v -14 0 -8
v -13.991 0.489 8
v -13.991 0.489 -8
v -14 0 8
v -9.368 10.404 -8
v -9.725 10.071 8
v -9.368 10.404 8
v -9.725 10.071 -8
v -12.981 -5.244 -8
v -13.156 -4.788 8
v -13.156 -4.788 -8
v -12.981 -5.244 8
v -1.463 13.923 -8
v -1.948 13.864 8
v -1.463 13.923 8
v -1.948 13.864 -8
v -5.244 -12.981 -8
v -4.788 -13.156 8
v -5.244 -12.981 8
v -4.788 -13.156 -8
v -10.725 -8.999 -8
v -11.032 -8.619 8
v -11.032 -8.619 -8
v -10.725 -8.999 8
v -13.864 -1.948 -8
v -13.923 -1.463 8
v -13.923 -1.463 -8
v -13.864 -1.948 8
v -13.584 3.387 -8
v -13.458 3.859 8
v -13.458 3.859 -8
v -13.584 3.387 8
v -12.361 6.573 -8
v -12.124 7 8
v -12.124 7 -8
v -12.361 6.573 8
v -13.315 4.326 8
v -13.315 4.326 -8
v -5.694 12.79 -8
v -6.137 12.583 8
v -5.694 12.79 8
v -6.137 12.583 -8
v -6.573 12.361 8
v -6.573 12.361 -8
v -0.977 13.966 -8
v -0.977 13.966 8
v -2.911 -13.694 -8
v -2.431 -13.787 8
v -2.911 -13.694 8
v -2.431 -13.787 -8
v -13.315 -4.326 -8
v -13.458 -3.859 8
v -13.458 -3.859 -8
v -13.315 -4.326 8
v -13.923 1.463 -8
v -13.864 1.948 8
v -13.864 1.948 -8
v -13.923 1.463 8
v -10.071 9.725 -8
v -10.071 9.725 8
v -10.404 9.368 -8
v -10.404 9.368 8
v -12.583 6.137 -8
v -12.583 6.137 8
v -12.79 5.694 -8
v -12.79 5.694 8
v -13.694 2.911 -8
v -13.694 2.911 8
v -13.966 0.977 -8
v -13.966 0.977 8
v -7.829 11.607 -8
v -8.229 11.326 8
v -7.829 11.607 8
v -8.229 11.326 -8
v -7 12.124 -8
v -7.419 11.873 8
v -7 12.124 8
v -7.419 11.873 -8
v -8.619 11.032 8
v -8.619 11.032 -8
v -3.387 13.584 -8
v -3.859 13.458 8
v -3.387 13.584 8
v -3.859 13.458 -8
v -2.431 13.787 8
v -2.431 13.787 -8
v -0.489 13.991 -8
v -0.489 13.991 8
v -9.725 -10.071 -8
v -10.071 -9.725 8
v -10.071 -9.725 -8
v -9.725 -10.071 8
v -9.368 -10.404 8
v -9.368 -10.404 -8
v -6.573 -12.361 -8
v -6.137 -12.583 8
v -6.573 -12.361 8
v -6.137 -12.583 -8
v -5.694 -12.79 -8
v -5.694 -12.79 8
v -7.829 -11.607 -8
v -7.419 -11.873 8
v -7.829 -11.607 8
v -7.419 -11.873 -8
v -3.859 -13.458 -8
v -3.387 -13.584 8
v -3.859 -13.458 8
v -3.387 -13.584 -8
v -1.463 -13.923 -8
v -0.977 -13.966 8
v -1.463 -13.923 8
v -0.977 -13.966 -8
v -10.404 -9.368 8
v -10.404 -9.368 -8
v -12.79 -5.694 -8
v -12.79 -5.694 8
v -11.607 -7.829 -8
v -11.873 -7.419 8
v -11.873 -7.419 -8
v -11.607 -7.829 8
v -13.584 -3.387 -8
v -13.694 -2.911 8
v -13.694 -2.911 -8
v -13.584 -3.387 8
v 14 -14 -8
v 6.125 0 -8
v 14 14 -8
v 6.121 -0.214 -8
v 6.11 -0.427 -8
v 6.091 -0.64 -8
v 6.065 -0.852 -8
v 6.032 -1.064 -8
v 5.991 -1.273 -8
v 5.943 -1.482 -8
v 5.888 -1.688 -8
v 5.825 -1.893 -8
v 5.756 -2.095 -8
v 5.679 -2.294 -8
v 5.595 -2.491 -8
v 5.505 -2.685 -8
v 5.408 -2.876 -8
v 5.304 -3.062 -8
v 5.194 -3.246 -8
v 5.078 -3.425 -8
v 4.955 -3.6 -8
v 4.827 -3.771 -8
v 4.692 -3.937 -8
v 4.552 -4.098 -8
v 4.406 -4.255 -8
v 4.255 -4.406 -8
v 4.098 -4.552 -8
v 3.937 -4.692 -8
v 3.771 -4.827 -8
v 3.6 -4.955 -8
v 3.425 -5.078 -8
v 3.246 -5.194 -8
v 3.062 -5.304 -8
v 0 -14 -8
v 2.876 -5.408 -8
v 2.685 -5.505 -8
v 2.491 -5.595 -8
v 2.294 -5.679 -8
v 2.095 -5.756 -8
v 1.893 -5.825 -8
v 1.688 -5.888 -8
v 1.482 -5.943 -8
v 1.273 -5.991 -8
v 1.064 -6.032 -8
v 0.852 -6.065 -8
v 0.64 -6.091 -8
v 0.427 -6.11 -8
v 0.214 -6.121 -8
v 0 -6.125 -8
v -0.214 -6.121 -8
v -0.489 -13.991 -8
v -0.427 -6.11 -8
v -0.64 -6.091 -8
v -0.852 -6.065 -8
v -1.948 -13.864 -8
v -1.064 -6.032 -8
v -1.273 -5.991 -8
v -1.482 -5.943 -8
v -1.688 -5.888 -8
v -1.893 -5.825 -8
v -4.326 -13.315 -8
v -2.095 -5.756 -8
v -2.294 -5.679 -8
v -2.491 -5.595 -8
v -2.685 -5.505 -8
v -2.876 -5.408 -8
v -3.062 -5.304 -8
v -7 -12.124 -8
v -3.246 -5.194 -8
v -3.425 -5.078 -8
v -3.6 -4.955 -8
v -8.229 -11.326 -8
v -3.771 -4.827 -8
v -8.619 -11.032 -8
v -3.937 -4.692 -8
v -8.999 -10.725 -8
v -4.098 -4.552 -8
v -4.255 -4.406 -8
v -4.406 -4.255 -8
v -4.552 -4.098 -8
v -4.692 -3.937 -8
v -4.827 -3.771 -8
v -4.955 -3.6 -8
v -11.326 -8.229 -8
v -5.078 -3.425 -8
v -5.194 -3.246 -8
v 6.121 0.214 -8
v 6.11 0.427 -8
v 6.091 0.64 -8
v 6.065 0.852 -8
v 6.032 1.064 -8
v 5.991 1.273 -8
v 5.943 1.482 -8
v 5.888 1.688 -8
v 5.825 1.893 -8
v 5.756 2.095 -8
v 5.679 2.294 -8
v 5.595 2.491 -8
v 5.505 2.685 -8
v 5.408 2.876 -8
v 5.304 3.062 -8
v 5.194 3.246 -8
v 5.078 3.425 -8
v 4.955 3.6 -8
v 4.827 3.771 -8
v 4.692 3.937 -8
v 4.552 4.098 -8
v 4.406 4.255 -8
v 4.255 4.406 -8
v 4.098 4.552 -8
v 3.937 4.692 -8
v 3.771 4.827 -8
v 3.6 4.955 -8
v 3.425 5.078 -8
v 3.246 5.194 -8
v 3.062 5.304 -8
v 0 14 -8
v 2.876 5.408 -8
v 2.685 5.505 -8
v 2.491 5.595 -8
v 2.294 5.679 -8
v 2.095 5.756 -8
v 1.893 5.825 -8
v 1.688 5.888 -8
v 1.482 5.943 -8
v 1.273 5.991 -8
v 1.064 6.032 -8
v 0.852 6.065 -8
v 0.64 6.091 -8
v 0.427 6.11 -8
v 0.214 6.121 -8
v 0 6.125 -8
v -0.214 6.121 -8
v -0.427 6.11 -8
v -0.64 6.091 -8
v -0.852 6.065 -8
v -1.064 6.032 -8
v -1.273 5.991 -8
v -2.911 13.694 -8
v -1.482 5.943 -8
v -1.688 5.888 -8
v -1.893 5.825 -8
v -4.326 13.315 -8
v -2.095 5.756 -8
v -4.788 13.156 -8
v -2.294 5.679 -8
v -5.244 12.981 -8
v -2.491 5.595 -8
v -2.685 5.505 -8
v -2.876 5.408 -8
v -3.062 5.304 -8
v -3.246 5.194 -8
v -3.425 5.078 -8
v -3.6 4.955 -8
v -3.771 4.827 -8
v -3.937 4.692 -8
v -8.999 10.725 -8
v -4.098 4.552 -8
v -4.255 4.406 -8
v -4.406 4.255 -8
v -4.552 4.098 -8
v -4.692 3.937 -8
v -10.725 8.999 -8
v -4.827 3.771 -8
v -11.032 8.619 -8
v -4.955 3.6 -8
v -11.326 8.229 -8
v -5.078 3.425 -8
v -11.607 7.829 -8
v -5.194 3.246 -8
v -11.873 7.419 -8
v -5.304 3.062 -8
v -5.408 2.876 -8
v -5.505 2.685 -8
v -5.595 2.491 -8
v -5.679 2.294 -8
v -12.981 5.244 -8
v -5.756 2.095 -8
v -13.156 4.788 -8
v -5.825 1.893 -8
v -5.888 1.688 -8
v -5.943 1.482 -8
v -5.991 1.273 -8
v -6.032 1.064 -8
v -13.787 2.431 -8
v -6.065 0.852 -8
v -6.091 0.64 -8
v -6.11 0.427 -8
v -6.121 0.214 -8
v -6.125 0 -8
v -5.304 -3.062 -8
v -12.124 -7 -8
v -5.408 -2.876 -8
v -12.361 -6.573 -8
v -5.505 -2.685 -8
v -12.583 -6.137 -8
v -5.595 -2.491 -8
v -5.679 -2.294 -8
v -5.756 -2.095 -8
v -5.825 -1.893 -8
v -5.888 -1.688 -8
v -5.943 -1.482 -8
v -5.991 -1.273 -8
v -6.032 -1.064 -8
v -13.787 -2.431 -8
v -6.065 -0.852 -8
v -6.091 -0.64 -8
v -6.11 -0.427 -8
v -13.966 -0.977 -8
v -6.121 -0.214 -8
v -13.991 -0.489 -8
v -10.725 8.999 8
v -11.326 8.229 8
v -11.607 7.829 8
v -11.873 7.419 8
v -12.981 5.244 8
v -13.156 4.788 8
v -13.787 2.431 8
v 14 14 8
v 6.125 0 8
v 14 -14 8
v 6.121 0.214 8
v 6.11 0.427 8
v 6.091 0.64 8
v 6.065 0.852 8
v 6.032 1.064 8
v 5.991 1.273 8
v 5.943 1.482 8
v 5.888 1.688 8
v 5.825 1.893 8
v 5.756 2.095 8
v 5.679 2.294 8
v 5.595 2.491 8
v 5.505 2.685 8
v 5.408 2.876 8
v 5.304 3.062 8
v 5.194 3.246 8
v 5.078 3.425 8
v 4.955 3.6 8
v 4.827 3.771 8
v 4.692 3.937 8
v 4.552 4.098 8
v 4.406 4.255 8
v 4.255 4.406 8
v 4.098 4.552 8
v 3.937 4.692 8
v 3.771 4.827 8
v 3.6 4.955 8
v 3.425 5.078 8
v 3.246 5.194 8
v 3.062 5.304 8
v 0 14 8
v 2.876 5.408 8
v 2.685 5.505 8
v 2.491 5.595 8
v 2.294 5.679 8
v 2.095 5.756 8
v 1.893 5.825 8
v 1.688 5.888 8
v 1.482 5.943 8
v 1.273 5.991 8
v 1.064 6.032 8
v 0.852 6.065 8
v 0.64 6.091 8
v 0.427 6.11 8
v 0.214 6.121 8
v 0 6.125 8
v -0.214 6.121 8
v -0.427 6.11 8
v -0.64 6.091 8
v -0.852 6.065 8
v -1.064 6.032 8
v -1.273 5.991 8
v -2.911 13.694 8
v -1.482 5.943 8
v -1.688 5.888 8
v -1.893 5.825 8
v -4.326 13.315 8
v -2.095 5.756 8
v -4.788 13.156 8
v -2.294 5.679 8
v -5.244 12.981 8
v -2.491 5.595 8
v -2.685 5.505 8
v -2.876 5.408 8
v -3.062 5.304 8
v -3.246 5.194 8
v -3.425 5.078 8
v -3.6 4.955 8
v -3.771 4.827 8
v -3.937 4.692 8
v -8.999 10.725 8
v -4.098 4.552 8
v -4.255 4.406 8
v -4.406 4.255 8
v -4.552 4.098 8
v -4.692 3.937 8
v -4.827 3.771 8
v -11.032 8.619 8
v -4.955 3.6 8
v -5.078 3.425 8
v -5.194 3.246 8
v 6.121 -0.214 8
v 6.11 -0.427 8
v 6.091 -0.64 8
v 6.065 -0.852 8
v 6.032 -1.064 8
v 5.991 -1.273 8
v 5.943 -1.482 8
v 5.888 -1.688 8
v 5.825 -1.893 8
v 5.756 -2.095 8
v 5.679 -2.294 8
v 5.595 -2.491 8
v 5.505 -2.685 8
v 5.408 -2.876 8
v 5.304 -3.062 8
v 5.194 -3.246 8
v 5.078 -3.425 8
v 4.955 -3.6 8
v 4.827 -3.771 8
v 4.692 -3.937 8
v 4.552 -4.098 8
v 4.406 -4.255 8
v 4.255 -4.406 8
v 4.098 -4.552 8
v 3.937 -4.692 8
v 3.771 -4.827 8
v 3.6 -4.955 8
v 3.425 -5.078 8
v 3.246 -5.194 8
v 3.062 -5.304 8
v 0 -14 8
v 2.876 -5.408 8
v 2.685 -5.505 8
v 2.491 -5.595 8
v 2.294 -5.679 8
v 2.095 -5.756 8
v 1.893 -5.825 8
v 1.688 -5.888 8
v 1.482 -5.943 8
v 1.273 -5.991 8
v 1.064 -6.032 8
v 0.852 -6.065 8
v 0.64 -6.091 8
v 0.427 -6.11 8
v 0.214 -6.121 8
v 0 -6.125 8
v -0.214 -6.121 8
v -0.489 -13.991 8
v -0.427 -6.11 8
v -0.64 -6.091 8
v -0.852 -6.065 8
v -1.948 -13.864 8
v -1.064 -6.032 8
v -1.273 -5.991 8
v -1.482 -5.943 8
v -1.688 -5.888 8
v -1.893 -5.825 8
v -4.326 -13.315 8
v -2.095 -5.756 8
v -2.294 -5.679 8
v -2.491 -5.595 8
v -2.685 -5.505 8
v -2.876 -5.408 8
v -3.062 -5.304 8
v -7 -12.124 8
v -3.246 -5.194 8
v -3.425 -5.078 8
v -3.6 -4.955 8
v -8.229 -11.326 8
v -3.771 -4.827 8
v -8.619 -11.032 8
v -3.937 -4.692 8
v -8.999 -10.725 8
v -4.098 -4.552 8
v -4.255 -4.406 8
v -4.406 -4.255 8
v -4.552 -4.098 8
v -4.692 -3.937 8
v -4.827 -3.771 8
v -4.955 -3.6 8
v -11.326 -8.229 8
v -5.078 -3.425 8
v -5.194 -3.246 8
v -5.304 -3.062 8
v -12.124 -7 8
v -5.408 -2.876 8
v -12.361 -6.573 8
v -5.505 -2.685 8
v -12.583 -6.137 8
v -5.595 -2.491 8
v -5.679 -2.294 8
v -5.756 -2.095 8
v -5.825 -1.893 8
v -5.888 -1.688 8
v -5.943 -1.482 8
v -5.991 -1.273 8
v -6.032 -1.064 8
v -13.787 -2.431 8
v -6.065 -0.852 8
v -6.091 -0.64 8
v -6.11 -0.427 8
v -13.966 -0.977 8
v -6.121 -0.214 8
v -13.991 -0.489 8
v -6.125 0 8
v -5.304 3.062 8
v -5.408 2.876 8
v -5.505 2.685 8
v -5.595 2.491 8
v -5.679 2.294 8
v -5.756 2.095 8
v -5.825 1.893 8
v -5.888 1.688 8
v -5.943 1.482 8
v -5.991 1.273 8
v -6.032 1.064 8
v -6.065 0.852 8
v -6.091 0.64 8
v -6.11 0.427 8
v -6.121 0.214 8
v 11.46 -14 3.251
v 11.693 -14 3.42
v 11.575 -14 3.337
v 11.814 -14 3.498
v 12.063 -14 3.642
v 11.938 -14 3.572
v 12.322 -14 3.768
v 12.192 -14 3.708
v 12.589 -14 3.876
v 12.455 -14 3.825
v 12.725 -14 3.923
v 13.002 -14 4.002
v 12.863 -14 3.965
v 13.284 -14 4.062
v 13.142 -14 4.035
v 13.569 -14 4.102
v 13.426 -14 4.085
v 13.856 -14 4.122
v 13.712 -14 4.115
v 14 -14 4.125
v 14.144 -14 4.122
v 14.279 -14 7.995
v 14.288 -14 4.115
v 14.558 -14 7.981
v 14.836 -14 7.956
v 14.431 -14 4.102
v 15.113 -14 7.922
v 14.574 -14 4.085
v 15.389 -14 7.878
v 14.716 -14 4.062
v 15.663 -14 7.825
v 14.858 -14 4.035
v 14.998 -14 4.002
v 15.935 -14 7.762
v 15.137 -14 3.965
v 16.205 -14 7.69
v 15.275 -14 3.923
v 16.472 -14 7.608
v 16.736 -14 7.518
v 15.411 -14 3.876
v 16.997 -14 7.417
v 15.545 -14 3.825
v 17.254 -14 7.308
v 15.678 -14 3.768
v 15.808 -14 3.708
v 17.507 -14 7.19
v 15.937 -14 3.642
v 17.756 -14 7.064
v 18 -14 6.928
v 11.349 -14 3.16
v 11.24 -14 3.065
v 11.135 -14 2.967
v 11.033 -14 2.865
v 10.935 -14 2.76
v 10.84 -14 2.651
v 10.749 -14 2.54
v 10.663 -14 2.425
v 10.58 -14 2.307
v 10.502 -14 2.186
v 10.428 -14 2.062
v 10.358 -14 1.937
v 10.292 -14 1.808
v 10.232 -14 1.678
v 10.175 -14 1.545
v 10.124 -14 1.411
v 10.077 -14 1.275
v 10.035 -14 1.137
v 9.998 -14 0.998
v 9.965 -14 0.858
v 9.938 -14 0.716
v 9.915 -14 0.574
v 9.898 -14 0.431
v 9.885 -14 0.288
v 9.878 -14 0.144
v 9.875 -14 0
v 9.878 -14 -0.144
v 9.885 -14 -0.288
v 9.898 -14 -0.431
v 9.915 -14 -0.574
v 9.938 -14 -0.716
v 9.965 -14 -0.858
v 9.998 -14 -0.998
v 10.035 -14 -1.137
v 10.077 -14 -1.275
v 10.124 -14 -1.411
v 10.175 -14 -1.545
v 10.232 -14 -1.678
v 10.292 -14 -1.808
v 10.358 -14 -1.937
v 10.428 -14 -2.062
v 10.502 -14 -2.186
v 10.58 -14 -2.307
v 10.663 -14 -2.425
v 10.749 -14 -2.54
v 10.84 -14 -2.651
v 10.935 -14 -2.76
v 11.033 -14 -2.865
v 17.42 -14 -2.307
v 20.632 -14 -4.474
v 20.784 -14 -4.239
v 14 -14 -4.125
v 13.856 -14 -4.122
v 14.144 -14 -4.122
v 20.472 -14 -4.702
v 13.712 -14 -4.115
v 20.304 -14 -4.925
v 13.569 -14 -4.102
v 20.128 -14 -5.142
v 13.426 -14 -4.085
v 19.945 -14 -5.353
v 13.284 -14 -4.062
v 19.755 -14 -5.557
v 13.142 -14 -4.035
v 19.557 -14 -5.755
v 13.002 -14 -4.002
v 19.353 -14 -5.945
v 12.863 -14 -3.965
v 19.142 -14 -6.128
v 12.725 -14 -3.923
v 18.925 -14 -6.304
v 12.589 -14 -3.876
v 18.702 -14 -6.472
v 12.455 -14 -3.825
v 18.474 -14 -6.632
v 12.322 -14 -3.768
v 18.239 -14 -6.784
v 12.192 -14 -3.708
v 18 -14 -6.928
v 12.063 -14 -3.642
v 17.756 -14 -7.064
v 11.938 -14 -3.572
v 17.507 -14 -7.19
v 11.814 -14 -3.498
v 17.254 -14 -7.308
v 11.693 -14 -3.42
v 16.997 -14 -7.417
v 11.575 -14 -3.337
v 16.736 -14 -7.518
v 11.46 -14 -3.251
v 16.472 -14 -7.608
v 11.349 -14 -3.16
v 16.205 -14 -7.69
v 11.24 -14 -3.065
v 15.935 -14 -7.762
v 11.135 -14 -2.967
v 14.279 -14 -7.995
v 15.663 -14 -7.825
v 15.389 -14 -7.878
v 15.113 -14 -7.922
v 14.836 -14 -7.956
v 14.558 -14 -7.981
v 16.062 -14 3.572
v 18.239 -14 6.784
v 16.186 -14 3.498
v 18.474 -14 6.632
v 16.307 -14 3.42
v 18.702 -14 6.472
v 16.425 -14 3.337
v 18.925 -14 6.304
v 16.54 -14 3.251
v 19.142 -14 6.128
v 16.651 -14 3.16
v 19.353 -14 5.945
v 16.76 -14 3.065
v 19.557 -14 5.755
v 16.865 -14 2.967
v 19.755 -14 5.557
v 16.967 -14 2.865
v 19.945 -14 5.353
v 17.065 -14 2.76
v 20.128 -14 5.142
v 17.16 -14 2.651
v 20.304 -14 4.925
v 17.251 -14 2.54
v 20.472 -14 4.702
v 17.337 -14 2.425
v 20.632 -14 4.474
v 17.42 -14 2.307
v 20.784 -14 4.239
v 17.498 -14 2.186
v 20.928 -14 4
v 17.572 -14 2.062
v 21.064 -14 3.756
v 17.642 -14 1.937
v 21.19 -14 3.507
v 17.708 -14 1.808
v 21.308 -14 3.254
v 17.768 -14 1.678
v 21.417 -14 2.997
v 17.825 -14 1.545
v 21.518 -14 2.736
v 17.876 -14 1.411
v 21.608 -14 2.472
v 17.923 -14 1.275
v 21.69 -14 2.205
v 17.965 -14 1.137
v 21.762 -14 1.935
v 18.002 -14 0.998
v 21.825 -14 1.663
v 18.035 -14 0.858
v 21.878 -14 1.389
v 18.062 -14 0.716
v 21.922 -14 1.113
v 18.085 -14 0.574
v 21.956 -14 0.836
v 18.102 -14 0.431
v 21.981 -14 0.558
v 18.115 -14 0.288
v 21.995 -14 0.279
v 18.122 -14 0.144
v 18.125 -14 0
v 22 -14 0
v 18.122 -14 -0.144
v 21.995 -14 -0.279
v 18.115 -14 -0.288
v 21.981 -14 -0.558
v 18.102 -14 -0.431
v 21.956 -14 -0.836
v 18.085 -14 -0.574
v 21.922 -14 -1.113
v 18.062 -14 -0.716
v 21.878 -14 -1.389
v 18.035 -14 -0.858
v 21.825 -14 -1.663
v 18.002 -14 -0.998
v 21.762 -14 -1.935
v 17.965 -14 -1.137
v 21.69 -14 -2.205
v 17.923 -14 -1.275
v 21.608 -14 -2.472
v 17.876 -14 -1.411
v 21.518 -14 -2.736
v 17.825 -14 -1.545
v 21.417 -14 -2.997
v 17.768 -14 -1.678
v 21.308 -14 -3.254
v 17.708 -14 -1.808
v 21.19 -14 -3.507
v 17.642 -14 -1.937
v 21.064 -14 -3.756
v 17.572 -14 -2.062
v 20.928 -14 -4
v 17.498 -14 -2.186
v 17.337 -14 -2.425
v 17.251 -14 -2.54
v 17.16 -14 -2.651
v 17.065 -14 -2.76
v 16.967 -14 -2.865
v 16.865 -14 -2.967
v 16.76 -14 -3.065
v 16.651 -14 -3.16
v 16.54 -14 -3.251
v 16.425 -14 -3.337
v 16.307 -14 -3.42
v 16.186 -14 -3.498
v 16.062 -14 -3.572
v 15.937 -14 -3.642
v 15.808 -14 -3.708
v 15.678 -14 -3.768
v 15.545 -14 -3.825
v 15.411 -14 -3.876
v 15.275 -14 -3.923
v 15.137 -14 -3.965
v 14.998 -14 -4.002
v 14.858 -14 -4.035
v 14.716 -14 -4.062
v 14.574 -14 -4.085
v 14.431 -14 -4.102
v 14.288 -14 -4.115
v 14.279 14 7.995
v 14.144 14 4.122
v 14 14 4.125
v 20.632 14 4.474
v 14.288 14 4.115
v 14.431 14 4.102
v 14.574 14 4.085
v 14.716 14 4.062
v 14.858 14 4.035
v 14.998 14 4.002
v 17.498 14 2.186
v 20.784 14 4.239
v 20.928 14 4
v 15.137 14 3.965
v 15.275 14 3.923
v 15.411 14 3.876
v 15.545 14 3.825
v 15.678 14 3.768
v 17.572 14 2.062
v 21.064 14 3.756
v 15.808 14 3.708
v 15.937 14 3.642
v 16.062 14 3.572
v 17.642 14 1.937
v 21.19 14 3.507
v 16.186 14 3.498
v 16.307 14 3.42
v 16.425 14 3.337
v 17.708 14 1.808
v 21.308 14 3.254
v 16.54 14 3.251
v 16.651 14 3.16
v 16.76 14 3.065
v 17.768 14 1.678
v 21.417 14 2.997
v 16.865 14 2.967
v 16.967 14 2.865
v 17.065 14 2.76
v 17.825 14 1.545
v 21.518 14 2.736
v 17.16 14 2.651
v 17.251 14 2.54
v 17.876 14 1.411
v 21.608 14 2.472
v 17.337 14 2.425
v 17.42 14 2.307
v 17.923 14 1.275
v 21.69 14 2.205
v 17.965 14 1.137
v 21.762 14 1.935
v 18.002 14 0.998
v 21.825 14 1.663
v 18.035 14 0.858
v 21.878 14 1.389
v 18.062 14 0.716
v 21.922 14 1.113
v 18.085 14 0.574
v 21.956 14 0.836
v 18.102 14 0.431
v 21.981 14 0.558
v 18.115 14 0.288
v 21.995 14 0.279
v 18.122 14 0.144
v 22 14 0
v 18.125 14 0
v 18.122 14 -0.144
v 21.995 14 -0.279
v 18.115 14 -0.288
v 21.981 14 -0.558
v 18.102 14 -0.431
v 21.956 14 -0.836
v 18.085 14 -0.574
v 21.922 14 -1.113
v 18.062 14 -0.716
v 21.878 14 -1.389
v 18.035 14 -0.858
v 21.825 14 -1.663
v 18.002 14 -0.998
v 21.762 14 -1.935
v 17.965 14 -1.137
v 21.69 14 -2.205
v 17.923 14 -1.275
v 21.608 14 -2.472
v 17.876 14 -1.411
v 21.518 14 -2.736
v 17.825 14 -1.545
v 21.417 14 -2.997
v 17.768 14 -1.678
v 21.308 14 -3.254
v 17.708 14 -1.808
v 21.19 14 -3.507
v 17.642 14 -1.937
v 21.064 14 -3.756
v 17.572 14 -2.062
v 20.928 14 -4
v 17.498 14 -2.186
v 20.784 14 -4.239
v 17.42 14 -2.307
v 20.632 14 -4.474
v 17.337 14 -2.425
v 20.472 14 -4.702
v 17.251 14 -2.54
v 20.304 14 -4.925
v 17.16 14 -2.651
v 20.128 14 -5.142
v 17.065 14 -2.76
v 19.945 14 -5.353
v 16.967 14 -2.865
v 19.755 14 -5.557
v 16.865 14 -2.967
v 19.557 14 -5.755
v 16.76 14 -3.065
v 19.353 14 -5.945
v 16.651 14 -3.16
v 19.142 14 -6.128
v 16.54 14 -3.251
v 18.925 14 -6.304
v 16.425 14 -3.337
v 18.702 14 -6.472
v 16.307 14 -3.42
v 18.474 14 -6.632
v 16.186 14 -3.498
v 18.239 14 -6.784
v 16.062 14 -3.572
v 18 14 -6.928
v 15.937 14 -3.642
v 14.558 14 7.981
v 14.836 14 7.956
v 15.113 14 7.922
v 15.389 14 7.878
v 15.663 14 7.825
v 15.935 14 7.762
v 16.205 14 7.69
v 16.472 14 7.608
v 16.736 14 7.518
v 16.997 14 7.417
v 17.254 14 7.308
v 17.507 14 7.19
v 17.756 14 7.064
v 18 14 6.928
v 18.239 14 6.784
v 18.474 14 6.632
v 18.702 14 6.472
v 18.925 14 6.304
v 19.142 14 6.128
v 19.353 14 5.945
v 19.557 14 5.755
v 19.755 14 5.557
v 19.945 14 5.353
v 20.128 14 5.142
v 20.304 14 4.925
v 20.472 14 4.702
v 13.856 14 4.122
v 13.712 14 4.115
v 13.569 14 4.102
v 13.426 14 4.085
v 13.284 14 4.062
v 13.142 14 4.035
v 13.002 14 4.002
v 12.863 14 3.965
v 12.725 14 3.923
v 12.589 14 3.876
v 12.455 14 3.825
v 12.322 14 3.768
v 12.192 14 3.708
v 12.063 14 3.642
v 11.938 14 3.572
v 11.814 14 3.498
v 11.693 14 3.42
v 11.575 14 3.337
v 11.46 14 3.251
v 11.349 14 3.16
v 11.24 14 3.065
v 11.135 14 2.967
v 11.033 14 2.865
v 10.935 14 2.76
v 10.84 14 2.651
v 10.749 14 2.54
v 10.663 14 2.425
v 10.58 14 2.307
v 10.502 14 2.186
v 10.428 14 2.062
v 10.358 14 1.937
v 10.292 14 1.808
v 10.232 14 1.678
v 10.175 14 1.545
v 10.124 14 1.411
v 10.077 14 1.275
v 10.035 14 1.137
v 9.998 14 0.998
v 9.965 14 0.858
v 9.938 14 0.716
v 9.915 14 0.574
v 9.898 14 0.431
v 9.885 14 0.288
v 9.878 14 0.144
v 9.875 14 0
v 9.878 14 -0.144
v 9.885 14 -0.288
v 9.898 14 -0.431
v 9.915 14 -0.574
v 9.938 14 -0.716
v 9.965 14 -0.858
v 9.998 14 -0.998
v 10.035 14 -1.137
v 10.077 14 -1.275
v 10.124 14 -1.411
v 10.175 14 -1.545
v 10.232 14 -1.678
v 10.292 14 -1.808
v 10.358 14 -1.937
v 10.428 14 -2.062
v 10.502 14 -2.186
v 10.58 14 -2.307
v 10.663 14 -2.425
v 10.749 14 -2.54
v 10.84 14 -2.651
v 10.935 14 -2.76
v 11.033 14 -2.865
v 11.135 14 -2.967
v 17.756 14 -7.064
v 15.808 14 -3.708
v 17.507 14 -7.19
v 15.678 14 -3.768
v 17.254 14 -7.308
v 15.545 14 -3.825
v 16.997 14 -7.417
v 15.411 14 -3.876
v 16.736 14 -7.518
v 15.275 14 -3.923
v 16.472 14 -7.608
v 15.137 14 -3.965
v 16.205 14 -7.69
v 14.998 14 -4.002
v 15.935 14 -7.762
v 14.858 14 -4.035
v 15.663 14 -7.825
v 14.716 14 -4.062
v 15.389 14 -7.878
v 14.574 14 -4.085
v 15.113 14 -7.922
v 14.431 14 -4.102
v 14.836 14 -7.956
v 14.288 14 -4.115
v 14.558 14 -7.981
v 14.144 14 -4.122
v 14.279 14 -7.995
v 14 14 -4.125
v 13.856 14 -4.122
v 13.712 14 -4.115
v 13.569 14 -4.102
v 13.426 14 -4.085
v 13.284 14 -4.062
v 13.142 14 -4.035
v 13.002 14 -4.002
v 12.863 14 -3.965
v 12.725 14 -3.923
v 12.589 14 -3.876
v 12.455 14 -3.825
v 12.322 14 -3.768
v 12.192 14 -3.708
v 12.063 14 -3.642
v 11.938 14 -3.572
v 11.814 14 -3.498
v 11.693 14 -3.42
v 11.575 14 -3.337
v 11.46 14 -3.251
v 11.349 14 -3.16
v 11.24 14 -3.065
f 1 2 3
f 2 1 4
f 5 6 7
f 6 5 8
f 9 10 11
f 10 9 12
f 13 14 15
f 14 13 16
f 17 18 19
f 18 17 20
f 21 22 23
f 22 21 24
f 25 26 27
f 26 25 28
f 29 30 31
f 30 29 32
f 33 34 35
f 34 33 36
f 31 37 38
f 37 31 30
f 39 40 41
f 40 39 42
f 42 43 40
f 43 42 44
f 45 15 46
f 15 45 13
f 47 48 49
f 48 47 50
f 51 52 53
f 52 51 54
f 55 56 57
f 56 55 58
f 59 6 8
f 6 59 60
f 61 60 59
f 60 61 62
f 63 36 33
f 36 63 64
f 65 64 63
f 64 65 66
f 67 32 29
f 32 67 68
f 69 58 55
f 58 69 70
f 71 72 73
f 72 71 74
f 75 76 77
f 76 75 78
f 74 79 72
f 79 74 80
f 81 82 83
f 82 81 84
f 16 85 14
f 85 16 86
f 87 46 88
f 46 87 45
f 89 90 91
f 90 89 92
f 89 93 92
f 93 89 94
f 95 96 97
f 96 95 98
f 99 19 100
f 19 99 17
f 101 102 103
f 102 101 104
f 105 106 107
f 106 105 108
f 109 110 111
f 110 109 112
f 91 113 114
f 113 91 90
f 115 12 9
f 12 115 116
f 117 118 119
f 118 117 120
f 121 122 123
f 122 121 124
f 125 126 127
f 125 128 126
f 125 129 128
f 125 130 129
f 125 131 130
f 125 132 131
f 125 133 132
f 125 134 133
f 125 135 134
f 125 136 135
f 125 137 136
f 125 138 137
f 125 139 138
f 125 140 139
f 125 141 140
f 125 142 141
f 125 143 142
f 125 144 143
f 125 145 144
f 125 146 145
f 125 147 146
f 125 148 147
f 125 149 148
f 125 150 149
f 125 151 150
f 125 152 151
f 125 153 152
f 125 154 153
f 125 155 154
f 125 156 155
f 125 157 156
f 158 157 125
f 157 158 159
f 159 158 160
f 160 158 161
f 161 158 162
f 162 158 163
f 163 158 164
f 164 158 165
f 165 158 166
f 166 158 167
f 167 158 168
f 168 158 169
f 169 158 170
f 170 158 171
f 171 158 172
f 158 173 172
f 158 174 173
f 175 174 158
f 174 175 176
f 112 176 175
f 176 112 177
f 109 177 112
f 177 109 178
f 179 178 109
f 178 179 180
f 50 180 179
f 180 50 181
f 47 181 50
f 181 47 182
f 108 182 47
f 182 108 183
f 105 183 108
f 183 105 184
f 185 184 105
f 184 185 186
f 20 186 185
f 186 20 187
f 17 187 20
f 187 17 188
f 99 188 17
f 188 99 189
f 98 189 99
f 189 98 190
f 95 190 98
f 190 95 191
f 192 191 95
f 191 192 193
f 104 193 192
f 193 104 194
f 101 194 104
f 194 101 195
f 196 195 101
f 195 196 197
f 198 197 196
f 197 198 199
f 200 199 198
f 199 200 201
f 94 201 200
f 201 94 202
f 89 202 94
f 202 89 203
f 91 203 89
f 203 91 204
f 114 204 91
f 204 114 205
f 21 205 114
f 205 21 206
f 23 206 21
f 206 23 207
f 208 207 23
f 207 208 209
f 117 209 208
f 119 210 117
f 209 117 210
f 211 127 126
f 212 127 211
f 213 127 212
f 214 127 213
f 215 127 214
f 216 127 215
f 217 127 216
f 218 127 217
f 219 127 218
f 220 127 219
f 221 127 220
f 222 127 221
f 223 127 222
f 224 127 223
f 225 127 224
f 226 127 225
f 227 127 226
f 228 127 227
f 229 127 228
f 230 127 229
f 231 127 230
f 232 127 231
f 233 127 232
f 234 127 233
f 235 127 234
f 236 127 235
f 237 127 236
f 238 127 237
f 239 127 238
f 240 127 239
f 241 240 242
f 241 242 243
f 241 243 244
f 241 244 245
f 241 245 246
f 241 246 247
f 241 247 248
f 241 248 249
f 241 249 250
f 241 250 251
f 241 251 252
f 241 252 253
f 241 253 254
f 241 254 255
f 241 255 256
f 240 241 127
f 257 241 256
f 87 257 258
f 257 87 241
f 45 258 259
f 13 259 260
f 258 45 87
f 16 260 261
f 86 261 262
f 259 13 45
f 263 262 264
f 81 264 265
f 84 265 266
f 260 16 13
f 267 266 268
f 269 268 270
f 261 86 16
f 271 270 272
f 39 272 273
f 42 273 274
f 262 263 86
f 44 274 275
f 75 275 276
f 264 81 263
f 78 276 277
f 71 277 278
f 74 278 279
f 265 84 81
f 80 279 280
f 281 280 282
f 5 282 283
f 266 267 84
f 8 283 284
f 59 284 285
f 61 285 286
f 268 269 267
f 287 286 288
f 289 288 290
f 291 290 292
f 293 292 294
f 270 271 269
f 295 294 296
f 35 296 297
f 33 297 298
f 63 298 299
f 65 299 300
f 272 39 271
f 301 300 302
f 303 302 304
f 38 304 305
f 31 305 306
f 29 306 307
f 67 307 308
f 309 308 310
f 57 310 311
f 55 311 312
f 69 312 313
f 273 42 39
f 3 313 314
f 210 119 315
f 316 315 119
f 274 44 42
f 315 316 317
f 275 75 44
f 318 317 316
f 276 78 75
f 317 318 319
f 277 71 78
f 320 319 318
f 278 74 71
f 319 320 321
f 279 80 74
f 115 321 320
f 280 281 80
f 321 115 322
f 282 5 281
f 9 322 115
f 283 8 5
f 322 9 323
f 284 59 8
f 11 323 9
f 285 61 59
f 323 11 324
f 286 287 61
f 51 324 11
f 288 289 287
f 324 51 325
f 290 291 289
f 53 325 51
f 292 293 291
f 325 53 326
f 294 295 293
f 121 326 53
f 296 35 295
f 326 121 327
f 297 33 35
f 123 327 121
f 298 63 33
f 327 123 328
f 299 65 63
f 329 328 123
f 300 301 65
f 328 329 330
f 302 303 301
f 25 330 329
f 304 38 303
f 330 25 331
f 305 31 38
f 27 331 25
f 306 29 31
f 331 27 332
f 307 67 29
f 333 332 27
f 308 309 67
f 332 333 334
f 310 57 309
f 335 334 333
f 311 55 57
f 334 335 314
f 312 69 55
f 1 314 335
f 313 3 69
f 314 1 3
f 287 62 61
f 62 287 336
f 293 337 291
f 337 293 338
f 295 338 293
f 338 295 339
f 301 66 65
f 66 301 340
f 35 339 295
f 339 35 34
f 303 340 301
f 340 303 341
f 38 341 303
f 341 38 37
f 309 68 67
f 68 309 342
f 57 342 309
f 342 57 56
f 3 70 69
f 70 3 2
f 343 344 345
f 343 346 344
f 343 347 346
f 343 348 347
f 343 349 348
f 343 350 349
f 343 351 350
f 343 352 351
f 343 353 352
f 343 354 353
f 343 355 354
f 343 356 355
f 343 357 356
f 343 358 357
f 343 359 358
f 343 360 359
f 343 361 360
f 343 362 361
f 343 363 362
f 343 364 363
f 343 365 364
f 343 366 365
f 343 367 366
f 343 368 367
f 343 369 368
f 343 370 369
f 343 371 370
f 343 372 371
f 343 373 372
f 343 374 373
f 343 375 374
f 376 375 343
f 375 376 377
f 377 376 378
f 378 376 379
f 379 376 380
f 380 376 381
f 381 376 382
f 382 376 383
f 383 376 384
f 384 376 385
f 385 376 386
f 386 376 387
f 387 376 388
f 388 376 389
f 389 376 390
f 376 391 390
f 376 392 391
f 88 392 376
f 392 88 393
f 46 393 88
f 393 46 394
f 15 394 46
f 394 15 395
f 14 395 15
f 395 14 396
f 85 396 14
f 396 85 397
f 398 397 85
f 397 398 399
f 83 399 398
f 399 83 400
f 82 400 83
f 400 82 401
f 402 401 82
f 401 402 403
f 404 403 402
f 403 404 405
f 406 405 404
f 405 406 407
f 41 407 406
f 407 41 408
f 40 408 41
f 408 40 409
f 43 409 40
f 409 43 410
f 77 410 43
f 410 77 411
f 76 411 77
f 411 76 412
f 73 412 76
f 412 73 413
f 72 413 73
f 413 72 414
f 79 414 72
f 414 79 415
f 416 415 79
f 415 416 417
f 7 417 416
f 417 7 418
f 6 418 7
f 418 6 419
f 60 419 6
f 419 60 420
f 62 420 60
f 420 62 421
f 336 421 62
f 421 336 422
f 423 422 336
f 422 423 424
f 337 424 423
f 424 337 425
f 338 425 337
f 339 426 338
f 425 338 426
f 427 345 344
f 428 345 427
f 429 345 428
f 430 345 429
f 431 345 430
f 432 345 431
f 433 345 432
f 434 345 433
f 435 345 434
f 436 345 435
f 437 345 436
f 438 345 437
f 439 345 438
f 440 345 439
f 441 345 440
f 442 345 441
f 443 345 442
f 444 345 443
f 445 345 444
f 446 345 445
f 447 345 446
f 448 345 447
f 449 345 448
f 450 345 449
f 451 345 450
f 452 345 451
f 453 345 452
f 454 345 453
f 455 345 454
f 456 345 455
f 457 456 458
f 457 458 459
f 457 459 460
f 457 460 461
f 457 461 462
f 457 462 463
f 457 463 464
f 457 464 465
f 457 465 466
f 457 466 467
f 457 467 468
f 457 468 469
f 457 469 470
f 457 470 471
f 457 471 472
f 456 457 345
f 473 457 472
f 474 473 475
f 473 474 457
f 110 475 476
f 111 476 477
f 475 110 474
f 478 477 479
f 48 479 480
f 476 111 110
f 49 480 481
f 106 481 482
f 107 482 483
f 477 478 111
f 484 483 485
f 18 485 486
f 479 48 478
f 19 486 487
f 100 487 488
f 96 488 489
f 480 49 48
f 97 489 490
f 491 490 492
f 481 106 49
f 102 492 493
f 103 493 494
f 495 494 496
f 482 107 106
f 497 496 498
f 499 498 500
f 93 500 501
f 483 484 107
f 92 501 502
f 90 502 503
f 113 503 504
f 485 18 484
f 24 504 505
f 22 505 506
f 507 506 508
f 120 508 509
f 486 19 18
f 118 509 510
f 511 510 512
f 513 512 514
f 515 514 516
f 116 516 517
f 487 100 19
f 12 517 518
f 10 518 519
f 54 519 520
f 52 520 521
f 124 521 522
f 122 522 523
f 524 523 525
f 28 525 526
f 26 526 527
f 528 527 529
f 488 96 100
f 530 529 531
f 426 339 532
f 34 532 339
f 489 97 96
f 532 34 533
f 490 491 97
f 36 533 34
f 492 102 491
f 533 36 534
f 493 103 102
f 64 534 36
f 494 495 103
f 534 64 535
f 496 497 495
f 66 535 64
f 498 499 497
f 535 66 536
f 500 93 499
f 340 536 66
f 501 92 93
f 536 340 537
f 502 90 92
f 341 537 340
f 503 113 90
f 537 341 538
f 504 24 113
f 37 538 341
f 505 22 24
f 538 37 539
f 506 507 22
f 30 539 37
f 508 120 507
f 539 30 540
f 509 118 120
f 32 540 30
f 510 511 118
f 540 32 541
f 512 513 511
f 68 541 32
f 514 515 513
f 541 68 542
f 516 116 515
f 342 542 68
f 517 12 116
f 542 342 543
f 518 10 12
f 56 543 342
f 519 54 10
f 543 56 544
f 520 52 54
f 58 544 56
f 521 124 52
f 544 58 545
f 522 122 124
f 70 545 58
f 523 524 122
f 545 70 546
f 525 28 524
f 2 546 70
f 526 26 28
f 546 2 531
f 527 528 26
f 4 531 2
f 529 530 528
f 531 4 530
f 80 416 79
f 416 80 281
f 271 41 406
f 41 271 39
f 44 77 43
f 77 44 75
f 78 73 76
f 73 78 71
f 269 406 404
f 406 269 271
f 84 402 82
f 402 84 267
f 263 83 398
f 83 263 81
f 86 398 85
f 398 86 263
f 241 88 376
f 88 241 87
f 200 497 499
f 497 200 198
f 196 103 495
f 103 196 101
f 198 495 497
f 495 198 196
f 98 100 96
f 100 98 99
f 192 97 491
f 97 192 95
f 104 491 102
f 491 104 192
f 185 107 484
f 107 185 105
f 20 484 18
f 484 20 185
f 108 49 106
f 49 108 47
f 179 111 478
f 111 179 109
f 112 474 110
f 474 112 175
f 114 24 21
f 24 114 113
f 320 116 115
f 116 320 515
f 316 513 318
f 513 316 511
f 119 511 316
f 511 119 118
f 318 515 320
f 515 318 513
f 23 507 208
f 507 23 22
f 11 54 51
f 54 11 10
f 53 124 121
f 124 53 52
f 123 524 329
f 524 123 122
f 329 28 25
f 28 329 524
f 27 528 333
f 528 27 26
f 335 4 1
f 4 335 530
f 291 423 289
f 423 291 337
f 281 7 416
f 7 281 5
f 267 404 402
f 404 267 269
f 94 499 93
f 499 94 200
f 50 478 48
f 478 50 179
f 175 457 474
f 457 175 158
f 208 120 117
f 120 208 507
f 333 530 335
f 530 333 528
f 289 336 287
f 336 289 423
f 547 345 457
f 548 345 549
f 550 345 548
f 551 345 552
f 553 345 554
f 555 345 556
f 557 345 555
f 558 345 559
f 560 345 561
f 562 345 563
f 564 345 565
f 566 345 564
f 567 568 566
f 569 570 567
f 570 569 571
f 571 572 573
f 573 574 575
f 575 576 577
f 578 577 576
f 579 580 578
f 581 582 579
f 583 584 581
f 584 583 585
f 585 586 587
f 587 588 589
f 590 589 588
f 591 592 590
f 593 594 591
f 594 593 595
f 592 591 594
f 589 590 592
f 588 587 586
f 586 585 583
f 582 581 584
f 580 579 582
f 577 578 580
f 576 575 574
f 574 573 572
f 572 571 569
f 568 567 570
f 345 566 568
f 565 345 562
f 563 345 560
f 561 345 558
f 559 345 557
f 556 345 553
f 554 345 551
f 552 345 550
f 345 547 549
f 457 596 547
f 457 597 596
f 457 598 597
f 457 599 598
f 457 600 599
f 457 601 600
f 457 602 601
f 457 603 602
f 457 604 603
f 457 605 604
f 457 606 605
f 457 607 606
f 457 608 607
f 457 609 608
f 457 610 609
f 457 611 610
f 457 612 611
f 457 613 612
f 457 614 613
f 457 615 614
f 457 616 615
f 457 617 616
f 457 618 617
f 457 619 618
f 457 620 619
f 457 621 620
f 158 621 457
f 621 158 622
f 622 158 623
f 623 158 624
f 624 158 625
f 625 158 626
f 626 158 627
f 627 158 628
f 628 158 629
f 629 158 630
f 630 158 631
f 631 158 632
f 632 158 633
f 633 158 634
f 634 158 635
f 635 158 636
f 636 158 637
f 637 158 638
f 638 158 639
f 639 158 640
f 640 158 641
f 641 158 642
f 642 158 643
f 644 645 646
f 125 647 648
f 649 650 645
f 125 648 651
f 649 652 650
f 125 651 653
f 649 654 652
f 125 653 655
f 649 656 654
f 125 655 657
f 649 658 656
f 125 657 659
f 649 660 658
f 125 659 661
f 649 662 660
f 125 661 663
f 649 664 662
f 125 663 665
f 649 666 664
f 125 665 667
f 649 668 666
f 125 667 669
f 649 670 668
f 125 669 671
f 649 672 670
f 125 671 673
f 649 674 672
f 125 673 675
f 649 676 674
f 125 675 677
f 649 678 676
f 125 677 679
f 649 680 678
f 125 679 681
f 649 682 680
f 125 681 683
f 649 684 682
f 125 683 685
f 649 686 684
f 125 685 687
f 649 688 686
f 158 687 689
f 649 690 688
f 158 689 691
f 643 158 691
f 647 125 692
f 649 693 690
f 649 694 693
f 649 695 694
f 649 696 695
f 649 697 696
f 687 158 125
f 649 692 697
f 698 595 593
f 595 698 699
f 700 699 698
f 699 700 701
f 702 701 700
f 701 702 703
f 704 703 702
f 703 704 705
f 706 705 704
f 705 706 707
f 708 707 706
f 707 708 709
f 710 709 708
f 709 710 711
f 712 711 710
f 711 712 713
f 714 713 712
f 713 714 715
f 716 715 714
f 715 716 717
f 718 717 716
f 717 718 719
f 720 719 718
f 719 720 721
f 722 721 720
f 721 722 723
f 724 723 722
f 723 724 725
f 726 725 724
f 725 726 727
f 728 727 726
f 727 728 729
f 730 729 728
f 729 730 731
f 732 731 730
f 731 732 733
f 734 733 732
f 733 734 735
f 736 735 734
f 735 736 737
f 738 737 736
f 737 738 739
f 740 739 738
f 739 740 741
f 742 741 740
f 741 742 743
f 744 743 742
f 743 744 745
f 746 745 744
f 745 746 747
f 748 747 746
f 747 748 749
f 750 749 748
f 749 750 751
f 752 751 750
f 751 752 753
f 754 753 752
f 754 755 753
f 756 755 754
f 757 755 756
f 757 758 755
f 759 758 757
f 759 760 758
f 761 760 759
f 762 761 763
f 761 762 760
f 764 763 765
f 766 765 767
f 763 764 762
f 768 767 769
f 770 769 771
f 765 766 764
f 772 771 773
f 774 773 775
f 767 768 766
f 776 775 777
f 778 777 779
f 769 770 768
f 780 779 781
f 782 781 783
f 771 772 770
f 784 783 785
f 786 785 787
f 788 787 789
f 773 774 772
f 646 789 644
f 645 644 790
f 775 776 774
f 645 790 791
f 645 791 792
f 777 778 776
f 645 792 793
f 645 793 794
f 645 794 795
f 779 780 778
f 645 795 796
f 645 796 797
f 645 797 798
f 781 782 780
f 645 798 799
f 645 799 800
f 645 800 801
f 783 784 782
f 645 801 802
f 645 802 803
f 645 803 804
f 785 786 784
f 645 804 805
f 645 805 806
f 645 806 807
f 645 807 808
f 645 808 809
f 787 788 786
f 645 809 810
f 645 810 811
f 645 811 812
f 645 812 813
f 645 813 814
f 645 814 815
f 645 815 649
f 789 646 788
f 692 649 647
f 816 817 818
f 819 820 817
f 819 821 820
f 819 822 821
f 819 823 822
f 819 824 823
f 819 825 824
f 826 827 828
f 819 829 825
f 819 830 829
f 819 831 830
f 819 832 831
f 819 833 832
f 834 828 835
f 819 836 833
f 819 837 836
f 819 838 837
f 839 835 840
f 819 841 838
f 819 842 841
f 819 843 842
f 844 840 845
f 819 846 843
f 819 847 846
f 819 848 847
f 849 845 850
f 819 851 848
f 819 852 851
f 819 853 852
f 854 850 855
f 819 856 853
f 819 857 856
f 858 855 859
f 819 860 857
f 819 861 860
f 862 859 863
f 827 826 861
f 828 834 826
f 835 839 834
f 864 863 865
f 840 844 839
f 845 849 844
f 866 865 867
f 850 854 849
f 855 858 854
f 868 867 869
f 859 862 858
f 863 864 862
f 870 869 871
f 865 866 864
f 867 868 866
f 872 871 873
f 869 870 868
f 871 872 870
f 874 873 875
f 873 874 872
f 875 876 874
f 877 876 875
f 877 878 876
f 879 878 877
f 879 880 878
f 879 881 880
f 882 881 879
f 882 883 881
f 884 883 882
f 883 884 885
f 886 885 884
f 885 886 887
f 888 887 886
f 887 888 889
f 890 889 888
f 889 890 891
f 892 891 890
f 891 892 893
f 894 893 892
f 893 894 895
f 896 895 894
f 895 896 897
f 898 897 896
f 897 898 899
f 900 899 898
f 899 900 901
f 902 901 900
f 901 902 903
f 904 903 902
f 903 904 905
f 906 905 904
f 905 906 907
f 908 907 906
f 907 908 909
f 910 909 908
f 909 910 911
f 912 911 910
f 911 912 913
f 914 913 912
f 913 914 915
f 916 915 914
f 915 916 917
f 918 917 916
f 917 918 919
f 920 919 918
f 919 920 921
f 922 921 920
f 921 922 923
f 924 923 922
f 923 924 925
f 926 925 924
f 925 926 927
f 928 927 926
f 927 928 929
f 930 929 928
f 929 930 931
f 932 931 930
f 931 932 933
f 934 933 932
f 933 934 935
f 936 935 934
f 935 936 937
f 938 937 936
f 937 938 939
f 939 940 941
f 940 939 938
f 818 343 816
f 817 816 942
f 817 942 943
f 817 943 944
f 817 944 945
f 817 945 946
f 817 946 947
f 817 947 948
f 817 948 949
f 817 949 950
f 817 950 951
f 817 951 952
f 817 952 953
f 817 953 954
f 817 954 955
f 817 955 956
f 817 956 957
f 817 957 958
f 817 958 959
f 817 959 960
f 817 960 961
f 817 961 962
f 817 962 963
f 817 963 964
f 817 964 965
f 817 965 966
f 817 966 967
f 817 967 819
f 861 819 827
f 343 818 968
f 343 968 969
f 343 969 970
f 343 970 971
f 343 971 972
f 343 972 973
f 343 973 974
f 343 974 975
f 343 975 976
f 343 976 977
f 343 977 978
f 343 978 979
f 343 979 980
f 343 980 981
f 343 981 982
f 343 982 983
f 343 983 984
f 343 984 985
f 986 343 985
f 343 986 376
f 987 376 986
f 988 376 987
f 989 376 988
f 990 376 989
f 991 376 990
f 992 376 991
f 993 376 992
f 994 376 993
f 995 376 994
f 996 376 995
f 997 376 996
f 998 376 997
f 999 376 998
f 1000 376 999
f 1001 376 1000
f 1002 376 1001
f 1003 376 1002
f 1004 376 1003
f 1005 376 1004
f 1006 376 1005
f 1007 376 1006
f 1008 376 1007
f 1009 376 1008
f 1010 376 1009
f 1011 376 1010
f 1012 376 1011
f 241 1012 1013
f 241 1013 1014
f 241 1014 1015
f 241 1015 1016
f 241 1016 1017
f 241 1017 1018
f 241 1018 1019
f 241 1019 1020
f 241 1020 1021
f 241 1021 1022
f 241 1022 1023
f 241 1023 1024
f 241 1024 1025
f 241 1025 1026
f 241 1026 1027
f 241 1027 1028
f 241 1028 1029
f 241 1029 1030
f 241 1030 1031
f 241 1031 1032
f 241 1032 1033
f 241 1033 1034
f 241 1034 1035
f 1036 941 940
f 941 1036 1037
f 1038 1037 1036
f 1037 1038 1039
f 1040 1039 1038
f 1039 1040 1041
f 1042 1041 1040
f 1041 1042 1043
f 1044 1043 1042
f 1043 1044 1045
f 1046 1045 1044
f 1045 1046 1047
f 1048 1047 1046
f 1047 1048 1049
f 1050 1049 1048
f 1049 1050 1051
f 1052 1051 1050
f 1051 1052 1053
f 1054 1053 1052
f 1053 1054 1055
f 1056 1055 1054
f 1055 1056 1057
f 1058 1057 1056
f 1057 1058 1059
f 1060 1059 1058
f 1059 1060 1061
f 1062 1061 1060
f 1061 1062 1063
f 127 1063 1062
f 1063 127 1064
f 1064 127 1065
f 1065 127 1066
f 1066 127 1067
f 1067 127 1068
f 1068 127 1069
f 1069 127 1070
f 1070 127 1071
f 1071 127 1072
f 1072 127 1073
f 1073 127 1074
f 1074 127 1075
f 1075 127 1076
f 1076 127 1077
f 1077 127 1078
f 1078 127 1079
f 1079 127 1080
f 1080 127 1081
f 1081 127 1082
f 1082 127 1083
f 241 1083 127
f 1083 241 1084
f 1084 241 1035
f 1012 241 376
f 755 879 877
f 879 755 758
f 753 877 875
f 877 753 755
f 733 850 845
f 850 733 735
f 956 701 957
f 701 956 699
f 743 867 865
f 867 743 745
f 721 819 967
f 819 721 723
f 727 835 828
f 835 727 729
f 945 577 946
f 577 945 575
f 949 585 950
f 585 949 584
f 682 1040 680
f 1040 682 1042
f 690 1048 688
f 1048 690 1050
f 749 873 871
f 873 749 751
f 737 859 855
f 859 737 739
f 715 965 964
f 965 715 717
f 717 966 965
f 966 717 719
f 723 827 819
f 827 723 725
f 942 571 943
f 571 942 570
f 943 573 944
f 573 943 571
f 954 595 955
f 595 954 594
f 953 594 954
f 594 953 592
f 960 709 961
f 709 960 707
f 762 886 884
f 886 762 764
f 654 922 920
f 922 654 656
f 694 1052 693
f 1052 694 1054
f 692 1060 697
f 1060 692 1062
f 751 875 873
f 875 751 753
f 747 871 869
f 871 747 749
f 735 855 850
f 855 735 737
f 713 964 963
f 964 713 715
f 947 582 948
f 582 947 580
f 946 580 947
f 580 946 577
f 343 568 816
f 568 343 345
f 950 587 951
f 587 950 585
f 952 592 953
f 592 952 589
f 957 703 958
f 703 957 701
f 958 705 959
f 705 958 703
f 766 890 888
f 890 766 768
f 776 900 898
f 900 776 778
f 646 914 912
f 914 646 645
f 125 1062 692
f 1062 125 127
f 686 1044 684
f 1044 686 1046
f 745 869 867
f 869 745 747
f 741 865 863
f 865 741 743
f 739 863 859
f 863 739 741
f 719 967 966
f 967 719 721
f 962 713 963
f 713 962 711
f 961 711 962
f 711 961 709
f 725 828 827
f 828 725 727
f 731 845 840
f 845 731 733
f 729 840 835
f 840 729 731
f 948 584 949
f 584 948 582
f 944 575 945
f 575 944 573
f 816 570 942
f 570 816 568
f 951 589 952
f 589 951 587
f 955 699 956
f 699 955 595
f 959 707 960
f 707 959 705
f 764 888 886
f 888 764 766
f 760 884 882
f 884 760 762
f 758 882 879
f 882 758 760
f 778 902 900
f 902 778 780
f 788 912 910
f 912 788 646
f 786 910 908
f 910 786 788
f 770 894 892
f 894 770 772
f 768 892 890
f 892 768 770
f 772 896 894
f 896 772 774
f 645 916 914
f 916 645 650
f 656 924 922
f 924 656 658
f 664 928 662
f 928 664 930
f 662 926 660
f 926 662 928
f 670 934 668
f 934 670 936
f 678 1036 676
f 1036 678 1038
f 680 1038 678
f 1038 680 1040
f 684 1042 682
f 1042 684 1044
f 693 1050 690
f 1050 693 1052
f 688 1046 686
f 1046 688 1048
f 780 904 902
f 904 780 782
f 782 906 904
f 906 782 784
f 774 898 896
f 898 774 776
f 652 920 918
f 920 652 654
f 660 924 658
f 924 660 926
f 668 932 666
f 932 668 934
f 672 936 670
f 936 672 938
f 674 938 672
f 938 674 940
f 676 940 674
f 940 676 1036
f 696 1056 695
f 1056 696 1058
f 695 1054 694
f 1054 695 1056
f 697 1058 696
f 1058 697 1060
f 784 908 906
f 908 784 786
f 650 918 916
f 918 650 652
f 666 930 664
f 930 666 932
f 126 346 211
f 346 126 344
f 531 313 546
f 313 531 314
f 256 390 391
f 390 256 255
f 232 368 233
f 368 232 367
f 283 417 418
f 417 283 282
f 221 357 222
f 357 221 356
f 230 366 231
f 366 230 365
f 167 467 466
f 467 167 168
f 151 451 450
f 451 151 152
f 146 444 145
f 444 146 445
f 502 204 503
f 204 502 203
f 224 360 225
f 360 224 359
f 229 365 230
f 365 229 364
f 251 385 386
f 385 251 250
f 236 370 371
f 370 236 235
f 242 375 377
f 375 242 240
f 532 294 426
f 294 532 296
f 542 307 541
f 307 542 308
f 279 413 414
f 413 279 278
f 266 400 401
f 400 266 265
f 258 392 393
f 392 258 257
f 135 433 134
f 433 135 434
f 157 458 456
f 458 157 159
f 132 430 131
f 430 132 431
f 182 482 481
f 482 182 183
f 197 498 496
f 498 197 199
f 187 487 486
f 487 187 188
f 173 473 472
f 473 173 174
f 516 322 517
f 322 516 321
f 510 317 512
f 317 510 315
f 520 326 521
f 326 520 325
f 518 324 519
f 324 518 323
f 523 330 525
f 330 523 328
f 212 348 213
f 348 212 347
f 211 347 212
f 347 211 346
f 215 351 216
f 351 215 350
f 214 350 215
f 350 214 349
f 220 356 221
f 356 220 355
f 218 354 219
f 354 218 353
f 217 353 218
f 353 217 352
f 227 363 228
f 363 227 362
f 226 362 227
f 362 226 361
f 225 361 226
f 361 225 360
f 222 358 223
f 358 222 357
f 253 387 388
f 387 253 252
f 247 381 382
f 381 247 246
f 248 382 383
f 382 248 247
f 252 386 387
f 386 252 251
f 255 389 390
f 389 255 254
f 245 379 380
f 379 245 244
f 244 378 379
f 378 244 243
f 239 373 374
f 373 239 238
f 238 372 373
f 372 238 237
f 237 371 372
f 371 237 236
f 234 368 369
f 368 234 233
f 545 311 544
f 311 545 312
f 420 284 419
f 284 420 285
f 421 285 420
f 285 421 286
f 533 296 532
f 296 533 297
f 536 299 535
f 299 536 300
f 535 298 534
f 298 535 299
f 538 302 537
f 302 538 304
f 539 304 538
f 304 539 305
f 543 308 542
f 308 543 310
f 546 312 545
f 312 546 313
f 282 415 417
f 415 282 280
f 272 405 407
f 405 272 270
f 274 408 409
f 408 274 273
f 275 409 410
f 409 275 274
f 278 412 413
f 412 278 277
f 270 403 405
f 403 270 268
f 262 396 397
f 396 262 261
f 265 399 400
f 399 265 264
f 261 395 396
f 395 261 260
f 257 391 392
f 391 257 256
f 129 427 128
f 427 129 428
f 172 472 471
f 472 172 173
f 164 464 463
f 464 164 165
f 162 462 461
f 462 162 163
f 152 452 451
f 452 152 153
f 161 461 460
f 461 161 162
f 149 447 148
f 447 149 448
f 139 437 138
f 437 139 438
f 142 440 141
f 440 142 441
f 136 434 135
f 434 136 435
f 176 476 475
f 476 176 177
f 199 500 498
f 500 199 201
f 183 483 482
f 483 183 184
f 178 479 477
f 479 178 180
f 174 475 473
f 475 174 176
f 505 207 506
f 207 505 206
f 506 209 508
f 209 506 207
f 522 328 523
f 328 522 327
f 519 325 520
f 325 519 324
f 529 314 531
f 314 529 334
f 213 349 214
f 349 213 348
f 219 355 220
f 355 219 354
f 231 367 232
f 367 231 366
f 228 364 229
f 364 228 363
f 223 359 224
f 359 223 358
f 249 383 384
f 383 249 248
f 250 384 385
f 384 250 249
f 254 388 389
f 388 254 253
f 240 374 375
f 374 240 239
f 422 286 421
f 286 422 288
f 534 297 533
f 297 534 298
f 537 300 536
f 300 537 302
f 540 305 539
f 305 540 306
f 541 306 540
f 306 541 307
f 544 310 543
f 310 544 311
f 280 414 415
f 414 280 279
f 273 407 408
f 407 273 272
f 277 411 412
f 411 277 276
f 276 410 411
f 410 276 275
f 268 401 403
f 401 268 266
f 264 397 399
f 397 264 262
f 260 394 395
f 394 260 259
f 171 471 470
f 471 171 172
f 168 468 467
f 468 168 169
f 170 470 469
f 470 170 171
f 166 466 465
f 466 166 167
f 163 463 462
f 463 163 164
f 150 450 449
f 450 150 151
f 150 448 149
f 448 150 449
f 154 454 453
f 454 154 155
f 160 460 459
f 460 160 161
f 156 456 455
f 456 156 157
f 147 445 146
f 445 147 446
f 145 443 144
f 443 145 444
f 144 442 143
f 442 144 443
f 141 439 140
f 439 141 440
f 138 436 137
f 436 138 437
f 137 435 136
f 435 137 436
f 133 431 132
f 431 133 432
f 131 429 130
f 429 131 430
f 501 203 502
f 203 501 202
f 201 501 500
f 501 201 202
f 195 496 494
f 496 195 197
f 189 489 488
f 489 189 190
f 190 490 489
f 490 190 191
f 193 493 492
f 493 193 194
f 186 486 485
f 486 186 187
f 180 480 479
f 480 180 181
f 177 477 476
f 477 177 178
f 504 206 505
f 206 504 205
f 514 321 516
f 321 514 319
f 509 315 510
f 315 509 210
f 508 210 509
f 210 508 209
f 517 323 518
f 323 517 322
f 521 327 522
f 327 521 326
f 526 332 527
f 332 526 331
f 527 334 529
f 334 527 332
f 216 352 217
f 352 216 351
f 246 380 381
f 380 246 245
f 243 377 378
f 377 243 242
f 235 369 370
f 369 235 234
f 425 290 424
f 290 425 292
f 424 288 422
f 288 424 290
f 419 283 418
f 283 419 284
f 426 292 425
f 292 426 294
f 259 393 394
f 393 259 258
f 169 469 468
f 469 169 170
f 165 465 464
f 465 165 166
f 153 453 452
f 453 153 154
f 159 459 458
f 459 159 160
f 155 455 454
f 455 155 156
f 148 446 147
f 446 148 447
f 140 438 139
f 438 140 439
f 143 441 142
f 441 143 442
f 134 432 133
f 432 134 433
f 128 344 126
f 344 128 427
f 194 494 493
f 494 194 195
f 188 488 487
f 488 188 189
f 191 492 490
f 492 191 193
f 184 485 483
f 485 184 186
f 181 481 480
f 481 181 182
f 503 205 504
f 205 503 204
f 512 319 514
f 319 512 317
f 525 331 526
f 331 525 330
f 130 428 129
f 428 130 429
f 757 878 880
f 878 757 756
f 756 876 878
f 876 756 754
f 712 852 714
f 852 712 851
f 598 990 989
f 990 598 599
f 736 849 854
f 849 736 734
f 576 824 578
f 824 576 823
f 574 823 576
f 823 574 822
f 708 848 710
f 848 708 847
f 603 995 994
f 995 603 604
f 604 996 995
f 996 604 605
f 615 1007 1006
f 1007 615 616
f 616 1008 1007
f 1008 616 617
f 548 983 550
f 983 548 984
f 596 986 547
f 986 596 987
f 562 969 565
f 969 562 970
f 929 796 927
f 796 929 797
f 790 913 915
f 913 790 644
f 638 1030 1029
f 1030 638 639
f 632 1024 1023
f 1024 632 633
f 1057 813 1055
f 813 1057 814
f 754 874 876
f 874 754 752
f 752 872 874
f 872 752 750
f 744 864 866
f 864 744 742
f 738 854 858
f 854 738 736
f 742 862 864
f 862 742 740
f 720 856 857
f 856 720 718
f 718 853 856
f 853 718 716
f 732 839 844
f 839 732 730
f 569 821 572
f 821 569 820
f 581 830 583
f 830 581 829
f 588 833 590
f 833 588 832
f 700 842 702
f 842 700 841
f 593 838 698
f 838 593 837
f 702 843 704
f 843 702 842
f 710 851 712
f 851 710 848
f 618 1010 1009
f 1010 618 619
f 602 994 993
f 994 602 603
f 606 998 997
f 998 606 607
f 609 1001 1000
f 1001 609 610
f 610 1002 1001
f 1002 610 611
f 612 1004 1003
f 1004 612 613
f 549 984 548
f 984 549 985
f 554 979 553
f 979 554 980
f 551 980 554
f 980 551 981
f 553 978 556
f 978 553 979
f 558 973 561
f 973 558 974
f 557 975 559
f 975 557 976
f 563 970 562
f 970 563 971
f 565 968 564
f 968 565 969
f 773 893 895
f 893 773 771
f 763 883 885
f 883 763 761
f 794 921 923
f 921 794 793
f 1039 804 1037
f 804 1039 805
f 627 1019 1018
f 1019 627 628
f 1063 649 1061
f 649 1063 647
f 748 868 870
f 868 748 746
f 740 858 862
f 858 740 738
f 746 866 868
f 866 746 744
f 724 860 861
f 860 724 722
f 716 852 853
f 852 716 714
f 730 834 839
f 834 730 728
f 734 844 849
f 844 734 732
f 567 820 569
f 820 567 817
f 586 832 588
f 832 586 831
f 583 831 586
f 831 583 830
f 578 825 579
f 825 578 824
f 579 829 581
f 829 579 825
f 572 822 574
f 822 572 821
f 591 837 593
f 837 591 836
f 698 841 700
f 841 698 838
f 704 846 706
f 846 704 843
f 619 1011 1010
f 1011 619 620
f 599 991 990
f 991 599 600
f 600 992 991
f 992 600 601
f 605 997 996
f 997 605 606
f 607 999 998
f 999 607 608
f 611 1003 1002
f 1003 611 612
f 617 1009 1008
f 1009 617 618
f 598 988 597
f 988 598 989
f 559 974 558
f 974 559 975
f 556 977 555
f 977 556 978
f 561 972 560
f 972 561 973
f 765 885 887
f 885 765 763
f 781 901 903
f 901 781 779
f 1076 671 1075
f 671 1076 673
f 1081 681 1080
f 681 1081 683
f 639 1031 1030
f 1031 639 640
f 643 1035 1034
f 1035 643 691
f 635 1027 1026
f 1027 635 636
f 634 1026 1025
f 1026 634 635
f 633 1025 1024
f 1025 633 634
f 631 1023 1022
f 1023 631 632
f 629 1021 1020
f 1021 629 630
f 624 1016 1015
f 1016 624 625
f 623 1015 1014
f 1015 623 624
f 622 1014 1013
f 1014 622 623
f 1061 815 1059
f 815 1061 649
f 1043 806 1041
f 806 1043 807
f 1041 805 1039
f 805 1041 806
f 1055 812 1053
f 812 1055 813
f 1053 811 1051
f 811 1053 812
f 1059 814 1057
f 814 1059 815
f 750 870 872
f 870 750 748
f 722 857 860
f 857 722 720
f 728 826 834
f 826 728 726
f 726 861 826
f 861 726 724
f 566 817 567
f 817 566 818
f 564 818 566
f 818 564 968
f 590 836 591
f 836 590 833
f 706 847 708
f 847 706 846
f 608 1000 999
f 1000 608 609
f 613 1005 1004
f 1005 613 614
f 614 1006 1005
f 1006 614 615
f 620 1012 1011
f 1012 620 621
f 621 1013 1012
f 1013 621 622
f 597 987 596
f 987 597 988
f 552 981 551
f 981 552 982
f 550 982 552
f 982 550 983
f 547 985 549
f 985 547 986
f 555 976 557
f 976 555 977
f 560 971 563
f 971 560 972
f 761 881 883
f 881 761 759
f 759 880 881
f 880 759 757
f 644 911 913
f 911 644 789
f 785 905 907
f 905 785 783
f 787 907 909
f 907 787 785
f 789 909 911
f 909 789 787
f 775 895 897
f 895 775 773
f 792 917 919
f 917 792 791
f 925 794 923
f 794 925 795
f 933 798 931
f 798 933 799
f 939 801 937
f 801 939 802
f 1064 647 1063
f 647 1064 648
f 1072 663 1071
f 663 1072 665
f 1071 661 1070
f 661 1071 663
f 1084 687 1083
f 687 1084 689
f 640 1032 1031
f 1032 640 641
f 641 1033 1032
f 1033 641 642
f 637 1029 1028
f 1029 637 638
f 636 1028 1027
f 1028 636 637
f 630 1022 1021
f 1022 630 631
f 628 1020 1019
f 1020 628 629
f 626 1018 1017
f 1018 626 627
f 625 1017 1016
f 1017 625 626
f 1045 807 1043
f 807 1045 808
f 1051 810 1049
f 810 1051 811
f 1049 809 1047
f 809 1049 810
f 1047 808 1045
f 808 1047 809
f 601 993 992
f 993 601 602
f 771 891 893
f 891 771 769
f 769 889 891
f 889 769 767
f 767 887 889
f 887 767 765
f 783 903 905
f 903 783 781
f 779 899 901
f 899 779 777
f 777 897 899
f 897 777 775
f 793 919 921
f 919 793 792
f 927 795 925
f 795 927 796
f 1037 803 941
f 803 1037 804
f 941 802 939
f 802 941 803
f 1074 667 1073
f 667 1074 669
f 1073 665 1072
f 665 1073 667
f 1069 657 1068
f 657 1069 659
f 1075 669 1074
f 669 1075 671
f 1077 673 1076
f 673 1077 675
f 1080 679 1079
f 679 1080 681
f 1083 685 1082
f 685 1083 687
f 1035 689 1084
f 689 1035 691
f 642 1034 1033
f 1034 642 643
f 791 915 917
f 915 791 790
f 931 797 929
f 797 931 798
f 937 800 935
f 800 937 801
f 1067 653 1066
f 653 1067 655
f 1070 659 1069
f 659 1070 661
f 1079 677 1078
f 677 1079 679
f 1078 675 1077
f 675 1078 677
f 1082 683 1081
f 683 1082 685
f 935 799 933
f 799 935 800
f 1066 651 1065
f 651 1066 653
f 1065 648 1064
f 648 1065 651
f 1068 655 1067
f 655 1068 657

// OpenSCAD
//cube([120,120,3], center = true);
//translate([-45,-45,0])cylinder(h = 3, r=15, $fn = 180, center = true);
//rotate_extrude(convexity = 10, $fn = A) translate([20+1.5, 0, 0])circle(d = 3, $fn = B);
//module Test(){
//import("asd.stl");

//sphere(2, $fn=100); 

/*

CubePoints = [
  [  0,  0,  0 ],  //0
  [ 10,  0,  0 ],  //1
  [ 10,  7,  0 ],  //2
  [  0,  7,  0 ],  //3
  [  0,  0,  5 ],  //4
  [ 10,  0,  5 ],  //5
  [ 10,  7,  5 ],  //6
  [  0,  7,  5 ]]; //7
  
CubeFaces = [
  [0,1,2,3],  // bottom
  [4,5,1,0],  // front
  [7,6,5,4],  // top
  [5,6,2,1],  // right
  [6,7,3,2],  // back
  [7,4,0,3]]; // left
  
polyhedron( CubePoints, CubeFaces );
     
*/     
     
     
     
difference(){     
union(){     
cylinder(h = 16, d=28, $fn = 180, center = true);     
 

translate([7,0,0])cube([14,28,16], center = true);
    
     
translate([14,0,0])rotate([90,0,0])cylinder(h = 28, d=16, $fn = 180, center = true);

}

cylinder(h = 20, d=12.25, $fn = 180, center = true); 

translate([14,0,0])rotate([90,0,0])cylinder(h = 30, d=8.25, $fn = 180, center = true);
}
